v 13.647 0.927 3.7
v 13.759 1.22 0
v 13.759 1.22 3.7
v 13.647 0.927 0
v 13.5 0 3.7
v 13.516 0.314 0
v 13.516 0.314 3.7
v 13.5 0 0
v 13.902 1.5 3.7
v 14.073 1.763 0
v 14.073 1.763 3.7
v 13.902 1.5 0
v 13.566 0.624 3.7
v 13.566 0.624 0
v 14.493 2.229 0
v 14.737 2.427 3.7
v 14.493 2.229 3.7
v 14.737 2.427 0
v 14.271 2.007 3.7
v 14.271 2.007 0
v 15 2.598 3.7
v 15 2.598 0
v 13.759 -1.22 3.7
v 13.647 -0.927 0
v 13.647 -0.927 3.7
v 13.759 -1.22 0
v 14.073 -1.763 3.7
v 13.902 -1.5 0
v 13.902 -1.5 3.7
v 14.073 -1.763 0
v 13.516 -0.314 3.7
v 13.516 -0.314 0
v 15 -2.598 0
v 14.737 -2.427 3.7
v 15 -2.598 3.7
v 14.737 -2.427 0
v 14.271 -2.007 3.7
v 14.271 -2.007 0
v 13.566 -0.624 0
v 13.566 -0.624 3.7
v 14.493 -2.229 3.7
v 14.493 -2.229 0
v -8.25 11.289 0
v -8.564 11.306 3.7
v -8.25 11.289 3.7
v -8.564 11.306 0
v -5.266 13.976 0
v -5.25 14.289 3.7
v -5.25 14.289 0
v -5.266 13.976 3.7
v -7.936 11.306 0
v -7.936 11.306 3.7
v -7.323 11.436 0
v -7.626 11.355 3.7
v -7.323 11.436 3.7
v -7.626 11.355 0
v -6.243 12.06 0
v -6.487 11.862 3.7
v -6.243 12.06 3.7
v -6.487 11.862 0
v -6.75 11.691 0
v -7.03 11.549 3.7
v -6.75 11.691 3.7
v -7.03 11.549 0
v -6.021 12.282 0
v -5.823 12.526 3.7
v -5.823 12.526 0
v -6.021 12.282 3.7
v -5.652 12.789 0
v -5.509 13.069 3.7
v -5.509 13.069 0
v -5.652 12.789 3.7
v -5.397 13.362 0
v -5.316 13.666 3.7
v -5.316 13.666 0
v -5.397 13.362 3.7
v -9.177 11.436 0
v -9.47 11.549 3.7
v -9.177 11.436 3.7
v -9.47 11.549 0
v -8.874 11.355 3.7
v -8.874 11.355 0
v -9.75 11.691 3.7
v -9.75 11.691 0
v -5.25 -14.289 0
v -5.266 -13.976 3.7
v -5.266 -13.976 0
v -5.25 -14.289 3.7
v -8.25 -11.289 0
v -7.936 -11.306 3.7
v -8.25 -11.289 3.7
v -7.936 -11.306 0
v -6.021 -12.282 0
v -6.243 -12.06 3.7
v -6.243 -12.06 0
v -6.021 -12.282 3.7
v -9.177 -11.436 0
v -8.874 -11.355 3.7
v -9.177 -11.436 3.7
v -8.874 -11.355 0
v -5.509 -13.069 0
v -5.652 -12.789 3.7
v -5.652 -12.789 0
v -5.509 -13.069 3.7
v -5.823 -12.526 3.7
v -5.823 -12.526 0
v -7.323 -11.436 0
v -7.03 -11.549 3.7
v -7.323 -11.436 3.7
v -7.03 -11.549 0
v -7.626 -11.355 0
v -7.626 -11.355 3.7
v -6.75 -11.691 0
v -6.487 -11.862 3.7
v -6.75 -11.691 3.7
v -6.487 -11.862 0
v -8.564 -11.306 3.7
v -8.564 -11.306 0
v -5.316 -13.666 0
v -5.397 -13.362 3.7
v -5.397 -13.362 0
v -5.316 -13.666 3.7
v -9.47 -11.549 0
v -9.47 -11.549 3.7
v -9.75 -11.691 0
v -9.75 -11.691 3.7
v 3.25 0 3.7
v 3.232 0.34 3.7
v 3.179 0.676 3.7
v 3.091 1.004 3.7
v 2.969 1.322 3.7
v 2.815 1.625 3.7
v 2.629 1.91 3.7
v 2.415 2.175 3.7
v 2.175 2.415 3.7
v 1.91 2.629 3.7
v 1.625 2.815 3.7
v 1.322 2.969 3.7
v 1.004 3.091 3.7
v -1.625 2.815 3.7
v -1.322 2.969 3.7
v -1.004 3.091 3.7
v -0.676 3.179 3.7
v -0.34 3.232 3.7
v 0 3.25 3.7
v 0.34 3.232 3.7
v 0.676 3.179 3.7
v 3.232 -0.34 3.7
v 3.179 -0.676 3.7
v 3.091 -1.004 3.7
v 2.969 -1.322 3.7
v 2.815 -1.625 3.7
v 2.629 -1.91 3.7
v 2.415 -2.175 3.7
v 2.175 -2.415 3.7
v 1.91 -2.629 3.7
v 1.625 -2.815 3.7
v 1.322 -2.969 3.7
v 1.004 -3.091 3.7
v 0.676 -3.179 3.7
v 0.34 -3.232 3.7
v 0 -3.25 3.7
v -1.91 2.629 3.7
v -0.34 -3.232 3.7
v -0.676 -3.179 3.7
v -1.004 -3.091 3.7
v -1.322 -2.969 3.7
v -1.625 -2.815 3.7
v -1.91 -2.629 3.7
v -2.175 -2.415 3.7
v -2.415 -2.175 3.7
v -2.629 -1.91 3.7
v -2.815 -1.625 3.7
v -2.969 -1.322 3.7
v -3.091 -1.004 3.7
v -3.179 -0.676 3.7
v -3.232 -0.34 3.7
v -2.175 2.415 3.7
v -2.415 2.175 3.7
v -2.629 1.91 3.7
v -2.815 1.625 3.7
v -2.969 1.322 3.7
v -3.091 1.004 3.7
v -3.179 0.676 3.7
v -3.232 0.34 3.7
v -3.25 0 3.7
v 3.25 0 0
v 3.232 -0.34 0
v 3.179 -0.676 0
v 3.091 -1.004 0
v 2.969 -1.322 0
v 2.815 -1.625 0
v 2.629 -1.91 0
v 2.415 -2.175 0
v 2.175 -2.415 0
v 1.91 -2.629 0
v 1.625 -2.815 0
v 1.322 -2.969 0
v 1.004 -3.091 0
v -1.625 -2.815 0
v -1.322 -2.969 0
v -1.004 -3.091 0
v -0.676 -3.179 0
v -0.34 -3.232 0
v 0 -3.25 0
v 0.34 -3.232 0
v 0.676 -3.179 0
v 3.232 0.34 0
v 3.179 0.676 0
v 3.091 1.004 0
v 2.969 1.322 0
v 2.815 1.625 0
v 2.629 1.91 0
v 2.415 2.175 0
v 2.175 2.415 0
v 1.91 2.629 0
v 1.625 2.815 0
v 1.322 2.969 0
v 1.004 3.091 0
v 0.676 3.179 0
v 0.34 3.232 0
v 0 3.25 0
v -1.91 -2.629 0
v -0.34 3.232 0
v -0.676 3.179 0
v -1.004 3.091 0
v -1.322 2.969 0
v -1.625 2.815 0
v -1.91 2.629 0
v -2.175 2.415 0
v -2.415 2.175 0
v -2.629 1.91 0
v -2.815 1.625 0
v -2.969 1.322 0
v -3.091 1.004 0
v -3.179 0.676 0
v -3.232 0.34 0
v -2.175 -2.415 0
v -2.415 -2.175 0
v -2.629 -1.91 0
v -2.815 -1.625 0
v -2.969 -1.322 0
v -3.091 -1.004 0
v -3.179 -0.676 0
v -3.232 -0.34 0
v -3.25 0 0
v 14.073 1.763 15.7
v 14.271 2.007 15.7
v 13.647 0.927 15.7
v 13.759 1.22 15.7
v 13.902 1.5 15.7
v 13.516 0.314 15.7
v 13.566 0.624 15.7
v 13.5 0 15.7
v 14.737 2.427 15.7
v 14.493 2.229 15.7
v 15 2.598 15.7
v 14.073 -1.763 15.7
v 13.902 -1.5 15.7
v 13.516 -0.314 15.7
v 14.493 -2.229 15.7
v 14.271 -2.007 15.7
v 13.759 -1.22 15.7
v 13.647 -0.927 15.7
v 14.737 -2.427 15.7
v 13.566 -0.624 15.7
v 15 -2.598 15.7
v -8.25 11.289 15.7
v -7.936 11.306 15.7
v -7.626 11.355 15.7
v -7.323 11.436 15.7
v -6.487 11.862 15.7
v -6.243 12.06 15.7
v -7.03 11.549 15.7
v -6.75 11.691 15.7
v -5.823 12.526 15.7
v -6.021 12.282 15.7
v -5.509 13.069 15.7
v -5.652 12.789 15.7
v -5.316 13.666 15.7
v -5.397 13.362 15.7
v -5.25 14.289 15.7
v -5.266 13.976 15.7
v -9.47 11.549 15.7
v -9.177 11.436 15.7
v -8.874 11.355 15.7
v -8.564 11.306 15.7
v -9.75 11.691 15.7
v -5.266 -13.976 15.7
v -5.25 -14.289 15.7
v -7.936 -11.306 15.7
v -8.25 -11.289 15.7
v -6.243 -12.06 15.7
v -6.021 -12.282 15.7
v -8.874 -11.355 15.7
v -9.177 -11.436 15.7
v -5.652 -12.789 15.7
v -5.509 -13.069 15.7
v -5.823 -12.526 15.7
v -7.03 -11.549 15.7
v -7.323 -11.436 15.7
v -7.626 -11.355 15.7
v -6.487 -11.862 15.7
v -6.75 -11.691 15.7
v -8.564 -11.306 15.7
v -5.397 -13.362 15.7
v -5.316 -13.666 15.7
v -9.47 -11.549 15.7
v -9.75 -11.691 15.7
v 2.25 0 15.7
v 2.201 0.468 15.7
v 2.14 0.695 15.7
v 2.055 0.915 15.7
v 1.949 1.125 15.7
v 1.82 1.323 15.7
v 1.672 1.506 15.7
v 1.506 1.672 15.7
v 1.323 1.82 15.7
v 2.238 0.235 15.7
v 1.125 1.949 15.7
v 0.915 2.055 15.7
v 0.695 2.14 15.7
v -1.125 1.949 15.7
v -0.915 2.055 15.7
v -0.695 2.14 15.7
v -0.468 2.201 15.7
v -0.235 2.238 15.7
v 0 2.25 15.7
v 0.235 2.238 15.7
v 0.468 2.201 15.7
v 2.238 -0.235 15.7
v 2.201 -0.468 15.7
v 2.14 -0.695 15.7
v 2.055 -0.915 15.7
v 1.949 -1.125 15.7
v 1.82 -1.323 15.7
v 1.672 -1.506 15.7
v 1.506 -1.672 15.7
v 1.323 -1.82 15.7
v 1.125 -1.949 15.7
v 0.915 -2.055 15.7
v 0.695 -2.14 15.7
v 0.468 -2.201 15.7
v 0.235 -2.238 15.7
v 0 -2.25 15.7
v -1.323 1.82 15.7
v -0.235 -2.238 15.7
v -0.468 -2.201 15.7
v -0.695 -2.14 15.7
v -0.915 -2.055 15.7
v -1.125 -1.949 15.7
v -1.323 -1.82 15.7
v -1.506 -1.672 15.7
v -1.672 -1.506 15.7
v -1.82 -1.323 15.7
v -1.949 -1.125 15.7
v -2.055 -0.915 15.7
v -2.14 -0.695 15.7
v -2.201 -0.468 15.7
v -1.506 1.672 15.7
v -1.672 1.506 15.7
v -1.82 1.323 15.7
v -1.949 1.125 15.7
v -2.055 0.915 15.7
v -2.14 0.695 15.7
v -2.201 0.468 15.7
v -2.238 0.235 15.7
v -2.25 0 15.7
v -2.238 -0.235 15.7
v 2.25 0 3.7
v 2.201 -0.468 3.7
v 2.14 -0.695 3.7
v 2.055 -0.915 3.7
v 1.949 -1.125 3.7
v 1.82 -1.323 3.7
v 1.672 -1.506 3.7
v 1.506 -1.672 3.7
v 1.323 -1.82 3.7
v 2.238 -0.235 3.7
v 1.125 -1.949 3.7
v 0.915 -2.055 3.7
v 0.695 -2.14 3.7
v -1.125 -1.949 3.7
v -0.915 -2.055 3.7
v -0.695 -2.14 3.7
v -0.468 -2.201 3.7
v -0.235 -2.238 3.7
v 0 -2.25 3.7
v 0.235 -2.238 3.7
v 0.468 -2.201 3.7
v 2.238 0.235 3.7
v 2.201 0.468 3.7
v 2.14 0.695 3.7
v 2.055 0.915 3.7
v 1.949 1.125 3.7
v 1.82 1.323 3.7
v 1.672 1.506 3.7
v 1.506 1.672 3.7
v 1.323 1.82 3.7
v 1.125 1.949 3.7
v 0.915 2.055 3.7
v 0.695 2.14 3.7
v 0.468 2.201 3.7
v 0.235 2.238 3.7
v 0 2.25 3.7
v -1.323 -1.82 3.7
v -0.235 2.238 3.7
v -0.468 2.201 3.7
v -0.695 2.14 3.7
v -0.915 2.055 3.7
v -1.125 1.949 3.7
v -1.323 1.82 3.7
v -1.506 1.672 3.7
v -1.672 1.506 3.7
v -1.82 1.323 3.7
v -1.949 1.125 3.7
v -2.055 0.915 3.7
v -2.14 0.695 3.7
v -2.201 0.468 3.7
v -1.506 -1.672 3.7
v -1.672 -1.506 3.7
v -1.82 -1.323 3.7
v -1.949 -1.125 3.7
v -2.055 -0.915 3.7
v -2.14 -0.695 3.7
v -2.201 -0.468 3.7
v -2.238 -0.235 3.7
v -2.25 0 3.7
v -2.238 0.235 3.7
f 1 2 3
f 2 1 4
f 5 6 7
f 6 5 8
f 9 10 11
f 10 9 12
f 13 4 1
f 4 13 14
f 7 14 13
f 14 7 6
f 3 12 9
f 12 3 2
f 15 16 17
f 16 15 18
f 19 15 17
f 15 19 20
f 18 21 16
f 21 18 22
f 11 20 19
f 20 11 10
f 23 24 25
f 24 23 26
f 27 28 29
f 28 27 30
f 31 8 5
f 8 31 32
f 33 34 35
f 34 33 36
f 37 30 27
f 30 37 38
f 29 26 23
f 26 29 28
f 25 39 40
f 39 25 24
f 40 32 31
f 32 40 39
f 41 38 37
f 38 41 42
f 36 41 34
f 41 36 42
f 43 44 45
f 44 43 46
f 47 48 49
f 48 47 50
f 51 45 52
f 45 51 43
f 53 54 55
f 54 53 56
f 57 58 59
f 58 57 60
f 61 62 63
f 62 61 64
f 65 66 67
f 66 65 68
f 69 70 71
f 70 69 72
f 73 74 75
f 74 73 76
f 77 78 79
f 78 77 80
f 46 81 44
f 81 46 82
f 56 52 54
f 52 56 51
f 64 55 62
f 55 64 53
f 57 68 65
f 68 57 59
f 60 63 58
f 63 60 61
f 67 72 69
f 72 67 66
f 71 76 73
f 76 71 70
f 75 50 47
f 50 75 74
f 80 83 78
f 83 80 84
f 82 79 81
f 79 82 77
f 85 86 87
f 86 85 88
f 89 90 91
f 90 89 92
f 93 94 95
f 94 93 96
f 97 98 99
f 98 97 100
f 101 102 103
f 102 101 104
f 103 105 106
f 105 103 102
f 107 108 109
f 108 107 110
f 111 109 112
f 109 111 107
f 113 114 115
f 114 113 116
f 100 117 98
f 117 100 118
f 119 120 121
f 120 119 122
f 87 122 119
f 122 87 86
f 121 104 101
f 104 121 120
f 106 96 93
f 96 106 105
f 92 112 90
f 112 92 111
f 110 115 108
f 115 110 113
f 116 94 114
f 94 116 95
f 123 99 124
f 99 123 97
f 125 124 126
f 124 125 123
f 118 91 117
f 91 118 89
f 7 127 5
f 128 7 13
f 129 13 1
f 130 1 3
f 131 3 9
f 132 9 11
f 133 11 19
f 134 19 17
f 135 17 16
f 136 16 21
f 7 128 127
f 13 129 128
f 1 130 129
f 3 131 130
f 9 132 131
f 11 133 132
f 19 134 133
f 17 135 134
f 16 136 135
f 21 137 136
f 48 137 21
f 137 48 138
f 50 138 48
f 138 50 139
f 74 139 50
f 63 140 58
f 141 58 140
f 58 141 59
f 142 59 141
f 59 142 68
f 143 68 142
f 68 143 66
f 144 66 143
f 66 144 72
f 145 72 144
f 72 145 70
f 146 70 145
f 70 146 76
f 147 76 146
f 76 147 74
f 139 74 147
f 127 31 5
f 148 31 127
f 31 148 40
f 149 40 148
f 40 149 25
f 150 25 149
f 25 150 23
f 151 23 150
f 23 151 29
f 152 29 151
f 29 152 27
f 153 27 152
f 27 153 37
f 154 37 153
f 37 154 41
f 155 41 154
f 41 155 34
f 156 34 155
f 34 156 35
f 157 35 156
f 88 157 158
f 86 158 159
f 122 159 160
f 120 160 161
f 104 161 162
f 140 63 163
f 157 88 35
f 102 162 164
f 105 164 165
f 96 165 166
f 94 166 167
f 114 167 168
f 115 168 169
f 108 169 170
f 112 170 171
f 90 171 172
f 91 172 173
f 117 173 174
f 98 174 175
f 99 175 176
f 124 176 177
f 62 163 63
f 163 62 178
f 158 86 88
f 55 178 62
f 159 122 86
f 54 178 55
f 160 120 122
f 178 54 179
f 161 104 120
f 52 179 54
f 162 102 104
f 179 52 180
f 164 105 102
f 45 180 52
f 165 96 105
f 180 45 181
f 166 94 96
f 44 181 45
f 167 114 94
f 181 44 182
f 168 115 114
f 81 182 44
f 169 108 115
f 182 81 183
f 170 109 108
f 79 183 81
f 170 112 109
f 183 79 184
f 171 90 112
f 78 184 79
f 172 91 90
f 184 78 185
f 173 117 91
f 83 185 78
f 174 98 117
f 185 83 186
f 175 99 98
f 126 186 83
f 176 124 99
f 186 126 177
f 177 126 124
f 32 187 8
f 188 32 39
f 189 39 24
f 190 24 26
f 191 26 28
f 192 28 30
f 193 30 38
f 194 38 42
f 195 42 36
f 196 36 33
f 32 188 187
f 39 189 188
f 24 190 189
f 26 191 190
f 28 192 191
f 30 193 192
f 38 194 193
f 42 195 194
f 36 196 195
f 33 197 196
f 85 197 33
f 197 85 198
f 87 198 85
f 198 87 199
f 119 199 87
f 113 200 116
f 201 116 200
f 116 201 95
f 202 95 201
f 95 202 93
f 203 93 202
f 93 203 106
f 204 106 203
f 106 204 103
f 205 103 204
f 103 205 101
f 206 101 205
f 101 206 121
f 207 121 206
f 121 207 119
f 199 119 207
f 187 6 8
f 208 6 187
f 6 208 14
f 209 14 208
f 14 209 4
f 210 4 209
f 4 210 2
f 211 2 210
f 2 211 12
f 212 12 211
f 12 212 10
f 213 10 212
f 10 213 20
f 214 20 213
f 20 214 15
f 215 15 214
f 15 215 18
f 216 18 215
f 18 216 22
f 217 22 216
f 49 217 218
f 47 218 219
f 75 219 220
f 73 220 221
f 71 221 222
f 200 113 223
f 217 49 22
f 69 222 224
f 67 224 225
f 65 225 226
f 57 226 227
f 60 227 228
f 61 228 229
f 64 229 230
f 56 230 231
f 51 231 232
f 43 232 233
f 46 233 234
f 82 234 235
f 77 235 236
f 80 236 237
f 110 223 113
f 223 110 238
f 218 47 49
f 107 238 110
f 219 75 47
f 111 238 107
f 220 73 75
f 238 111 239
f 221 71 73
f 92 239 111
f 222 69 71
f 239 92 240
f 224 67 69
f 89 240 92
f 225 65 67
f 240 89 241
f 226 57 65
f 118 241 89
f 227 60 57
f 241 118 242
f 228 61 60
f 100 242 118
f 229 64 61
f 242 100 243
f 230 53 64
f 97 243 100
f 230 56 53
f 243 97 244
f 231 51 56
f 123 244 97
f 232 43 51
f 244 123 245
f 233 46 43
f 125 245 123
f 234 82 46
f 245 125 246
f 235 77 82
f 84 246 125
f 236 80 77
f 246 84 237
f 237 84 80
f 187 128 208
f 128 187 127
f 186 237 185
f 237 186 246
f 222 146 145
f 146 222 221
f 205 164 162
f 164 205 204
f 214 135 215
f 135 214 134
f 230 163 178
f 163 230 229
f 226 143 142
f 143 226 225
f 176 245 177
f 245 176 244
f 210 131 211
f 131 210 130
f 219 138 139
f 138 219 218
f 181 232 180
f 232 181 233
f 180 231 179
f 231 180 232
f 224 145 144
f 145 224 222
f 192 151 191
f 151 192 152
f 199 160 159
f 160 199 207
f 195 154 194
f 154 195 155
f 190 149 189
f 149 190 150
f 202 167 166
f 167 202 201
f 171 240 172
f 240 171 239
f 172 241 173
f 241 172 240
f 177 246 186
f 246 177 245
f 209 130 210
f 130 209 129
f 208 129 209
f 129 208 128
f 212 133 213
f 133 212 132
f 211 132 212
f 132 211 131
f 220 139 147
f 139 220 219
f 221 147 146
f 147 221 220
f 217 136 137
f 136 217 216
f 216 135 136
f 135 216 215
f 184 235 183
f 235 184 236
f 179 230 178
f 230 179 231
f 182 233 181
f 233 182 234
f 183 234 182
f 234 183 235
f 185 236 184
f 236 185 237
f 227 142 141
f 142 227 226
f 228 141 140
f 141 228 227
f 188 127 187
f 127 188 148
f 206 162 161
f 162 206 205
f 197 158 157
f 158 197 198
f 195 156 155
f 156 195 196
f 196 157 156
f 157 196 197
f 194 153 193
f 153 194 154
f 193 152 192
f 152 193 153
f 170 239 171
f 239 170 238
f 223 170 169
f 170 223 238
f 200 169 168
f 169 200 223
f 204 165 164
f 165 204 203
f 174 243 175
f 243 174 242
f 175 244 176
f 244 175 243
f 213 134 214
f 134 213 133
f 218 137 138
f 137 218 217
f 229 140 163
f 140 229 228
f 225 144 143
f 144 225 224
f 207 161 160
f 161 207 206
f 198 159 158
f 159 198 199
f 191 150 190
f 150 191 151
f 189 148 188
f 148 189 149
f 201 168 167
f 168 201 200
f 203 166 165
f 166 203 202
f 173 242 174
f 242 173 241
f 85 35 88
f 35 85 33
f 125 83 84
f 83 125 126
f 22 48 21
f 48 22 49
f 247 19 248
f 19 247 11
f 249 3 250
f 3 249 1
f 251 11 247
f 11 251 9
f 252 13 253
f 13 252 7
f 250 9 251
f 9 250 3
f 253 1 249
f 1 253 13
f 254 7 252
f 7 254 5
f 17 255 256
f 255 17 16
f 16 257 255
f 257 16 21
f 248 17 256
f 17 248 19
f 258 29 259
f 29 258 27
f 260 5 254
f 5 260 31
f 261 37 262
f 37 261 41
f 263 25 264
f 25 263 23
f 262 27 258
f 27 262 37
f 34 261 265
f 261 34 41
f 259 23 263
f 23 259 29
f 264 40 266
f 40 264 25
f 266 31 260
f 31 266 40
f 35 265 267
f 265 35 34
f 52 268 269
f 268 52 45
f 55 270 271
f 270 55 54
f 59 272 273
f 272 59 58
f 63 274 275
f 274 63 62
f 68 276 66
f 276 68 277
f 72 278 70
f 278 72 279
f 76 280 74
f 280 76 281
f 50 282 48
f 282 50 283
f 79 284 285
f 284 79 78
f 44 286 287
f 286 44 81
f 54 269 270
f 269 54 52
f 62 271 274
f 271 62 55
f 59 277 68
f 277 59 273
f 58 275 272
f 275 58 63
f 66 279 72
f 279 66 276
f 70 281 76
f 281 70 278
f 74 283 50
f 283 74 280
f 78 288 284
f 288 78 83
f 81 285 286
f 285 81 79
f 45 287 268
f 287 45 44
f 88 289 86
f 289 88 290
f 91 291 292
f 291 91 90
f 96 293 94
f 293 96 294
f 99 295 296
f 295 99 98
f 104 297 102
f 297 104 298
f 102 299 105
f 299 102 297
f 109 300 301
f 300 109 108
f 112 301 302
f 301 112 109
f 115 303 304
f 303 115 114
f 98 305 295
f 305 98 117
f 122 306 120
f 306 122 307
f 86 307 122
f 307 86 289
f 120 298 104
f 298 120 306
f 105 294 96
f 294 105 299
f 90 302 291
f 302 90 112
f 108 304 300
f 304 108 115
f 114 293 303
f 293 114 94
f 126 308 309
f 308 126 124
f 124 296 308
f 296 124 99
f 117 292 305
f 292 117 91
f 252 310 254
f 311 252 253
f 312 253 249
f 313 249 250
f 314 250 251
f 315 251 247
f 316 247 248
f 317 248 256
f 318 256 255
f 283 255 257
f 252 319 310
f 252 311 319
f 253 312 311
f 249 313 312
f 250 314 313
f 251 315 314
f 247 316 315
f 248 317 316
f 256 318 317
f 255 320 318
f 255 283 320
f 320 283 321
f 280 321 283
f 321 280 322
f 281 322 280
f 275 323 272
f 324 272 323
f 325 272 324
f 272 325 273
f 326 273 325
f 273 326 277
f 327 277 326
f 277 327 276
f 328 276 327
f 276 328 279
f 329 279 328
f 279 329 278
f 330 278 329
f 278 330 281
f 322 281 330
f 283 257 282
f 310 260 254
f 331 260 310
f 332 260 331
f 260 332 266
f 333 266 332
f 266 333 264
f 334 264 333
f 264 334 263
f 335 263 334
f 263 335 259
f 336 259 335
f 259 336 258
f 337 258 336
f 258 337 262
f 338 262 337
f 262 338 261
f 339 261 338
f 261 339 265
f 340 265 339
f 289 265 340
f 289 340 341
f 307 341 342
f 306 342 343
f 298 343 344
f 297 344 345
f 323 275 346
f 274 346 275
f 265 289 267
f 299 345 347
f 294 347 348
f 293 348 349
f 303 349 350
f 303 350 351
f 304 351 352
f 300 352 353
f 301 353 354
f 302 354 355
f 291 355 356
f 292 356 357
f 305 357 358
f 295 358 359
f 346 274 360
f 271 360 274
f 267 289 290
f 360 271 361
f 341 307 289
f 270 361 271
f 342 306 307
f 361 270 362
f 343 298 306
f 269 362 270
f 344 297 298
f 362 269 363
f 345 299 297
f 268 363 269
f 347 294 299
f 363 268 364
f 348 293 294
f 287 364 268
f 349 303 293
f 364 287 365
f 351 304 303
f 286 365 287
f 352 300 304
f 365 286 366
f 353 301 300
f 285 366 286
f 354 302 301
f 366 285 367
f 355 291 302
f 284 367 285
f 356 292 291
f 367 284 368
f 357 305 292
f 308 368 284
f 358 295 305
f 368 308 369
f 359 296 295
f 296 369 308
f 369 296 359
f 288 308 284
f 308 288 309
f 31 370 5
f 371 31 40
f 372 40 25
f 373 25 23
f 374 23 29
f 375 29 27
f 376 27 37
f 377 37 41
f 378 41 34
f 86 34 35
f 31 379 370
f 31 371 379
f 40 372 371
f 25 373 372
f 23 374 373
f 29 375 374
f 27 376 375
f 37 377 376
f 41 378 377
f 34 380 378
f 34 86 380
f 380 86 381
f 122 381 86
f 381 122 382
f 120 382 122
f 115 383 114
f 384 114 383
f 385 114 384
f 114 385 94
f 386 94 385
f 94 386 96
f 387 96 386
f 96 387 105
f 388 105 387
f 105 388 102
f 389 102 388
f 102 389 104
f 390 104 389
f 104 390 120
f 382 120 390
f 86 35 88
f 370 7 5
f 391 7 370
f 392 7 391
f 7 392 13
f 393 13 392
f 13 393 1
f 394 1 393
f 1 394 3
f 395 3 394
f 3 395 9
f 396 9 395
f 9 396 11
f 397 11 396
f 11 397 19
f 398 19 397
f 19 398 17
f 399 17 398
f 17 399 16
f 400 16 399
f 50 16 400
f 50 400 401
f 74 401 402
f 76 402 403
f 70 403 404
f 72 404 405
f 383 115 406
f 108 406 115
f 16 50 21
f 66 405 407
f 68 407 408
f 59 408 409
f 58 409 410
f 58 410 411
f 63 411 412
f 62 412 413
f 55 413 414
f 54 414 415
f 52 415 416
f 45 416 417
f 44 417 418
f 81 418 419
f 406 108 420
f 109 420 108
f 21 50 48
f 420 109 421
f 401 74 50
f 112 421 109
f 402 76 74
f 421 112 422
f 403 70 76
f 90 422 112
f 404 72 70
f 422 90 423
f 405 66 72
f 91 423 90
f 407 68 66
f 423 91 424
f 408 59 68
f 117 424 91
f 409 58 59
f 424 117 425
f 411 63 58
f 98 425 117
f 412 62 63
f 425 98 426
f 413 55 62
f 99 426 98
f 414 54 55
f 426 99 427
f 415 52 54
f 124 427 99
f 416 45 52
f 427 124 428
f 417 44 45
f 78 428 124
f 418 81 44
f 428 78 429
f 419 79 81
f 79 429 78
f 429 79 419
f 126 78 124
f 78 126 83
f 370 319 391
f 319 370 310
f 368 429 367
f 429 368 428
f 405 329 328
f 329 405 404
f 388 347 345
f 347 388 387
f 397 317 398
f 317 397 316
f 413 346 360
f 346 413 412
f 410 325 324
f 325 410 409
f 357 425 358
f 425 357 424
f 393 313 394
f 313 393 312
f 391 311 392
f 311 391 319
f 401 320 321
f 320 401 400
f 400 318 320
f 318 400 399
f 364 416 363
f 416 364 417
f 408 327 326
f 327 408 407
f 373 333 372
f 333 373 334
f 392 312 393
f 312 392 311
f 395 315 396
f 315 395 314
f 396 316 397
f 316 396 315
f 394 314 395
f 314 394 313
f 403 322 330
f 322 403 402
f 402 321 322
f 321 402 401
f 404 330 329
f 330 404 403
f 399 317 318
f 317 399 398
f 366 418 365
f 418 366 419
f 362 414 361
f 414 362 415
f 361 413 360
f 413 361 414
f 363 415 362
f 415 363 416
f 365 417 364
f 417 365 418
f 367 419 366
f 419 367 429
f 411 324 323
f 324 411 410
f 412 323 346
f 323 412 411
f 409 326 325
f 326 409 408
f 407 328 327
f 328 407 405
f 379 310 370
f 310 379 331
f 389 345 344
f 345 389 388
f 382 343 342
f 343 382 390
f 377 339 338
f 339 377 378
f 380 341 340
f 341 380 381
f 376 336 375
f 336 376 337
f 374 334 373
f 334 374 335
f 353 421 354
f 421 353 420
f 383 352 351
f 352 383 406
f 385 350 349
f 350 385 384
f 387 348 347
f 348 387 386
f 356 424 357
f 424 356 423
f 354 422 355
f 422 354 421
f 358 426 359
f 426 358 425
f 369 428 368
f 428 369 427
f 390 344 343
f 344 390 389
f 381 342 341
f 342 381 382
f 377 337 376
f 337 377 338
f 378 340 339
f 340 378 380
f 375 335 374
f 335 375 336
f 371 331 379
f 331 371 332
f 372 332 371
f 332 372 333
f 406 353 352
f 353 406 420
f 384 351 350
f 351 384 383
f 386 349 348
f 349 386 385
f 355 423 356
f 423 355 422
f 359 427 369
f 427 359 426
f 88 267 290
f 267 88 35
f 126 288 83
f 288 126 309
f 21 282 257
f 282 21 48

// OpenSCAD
upper_plate_radius = 19.75;
screw_distance_from_center = 16.5;
screw_hole_diameter = 6; // M3 head is usually 5.5mm
ptfe_hole_diameter = 4.5;
height = 12;
hotend_ptfe_diameter = 6.5;
hotend_ptfe_protrusion = 3.7;
HOLE_BUFFER_HEIGHT = 1;

extruder_support();

module extruder_support() {
    union() {
        // Additional support to hold hotend ptfe protrusion
        extruder_support_with_ptfe_hole(
            hotend_ptfe_protrusion,
            upper_plate_radius,
            screw_distance_from_center,
            screw_hole_diameter,
            hotend_ptfe_diameter
        );

        translate([0, 0, hotend_ptfe_protrusion])
            extruder_support_with_ptfe_hole(
                height,
                upper_plate_radius,
                screw_distance_from_center,
                screw_hole_diameter,
                ptfe_hole_diameter
            );
    }
}

module extruder_support_with_ptfe_hole(height, uper_plate_radius, screw_distance_from_center, screw_hole_diameter, ptfe_hole_diameter) {
    height_with_hole_buffer = height + (HOLE_BUFFER_HEIGHT * 2);

    intersection(){
        difference(){
            cylinder(r = upper_plate_radius, h = height);
            
            // Screw Holes
            for(angle=[0:120:359]){
                polar_translate(screw_distance_from_center, angle, -HOLE_BUFFER_HEIGHT)
                    cylinder(d = screw_hole_diameter, h = height_with_hole_buffer, $fn = 60);
            }
            
            // PTFE Tube/Filament Hole
            translate([0, 0, -HOLE_BUFFER_HEIGHT])
                cylinder(d = ptfe_hole_diameter, h = height_with_hole_buffer, $fn = 60);
        }
        // Trianguar Cut
        translate([0, 0, -HOLE_BUFFER_HEIGHT])
            polar_equilateral(screw_distance_from_center + 3, height_with_hole_buffer);
    }
}

function polar_to_cartesian(distance_from_center, angle) =
    [distance_from_center * cos(angle), distance_from_center * sin(angle)];

module polar_translate(distance_from_center, angle, z=0) {
    xy = polar_to_cartesian(distance_from_center, angle);
    translate([xy[0], xy[1], z]) children();
}

module polar_equilateral(distance_from_center, height){
    linear_extrude(height = height){
        triangle_points = [
            polar_to_cartesian(distance_from_center, 0),
            polar_to_cartesian(distance_from_center, 120),
            polar_to_cartesian(distance_from_center, 240)
        ];
        polygon(triangle_points);
    };
}
